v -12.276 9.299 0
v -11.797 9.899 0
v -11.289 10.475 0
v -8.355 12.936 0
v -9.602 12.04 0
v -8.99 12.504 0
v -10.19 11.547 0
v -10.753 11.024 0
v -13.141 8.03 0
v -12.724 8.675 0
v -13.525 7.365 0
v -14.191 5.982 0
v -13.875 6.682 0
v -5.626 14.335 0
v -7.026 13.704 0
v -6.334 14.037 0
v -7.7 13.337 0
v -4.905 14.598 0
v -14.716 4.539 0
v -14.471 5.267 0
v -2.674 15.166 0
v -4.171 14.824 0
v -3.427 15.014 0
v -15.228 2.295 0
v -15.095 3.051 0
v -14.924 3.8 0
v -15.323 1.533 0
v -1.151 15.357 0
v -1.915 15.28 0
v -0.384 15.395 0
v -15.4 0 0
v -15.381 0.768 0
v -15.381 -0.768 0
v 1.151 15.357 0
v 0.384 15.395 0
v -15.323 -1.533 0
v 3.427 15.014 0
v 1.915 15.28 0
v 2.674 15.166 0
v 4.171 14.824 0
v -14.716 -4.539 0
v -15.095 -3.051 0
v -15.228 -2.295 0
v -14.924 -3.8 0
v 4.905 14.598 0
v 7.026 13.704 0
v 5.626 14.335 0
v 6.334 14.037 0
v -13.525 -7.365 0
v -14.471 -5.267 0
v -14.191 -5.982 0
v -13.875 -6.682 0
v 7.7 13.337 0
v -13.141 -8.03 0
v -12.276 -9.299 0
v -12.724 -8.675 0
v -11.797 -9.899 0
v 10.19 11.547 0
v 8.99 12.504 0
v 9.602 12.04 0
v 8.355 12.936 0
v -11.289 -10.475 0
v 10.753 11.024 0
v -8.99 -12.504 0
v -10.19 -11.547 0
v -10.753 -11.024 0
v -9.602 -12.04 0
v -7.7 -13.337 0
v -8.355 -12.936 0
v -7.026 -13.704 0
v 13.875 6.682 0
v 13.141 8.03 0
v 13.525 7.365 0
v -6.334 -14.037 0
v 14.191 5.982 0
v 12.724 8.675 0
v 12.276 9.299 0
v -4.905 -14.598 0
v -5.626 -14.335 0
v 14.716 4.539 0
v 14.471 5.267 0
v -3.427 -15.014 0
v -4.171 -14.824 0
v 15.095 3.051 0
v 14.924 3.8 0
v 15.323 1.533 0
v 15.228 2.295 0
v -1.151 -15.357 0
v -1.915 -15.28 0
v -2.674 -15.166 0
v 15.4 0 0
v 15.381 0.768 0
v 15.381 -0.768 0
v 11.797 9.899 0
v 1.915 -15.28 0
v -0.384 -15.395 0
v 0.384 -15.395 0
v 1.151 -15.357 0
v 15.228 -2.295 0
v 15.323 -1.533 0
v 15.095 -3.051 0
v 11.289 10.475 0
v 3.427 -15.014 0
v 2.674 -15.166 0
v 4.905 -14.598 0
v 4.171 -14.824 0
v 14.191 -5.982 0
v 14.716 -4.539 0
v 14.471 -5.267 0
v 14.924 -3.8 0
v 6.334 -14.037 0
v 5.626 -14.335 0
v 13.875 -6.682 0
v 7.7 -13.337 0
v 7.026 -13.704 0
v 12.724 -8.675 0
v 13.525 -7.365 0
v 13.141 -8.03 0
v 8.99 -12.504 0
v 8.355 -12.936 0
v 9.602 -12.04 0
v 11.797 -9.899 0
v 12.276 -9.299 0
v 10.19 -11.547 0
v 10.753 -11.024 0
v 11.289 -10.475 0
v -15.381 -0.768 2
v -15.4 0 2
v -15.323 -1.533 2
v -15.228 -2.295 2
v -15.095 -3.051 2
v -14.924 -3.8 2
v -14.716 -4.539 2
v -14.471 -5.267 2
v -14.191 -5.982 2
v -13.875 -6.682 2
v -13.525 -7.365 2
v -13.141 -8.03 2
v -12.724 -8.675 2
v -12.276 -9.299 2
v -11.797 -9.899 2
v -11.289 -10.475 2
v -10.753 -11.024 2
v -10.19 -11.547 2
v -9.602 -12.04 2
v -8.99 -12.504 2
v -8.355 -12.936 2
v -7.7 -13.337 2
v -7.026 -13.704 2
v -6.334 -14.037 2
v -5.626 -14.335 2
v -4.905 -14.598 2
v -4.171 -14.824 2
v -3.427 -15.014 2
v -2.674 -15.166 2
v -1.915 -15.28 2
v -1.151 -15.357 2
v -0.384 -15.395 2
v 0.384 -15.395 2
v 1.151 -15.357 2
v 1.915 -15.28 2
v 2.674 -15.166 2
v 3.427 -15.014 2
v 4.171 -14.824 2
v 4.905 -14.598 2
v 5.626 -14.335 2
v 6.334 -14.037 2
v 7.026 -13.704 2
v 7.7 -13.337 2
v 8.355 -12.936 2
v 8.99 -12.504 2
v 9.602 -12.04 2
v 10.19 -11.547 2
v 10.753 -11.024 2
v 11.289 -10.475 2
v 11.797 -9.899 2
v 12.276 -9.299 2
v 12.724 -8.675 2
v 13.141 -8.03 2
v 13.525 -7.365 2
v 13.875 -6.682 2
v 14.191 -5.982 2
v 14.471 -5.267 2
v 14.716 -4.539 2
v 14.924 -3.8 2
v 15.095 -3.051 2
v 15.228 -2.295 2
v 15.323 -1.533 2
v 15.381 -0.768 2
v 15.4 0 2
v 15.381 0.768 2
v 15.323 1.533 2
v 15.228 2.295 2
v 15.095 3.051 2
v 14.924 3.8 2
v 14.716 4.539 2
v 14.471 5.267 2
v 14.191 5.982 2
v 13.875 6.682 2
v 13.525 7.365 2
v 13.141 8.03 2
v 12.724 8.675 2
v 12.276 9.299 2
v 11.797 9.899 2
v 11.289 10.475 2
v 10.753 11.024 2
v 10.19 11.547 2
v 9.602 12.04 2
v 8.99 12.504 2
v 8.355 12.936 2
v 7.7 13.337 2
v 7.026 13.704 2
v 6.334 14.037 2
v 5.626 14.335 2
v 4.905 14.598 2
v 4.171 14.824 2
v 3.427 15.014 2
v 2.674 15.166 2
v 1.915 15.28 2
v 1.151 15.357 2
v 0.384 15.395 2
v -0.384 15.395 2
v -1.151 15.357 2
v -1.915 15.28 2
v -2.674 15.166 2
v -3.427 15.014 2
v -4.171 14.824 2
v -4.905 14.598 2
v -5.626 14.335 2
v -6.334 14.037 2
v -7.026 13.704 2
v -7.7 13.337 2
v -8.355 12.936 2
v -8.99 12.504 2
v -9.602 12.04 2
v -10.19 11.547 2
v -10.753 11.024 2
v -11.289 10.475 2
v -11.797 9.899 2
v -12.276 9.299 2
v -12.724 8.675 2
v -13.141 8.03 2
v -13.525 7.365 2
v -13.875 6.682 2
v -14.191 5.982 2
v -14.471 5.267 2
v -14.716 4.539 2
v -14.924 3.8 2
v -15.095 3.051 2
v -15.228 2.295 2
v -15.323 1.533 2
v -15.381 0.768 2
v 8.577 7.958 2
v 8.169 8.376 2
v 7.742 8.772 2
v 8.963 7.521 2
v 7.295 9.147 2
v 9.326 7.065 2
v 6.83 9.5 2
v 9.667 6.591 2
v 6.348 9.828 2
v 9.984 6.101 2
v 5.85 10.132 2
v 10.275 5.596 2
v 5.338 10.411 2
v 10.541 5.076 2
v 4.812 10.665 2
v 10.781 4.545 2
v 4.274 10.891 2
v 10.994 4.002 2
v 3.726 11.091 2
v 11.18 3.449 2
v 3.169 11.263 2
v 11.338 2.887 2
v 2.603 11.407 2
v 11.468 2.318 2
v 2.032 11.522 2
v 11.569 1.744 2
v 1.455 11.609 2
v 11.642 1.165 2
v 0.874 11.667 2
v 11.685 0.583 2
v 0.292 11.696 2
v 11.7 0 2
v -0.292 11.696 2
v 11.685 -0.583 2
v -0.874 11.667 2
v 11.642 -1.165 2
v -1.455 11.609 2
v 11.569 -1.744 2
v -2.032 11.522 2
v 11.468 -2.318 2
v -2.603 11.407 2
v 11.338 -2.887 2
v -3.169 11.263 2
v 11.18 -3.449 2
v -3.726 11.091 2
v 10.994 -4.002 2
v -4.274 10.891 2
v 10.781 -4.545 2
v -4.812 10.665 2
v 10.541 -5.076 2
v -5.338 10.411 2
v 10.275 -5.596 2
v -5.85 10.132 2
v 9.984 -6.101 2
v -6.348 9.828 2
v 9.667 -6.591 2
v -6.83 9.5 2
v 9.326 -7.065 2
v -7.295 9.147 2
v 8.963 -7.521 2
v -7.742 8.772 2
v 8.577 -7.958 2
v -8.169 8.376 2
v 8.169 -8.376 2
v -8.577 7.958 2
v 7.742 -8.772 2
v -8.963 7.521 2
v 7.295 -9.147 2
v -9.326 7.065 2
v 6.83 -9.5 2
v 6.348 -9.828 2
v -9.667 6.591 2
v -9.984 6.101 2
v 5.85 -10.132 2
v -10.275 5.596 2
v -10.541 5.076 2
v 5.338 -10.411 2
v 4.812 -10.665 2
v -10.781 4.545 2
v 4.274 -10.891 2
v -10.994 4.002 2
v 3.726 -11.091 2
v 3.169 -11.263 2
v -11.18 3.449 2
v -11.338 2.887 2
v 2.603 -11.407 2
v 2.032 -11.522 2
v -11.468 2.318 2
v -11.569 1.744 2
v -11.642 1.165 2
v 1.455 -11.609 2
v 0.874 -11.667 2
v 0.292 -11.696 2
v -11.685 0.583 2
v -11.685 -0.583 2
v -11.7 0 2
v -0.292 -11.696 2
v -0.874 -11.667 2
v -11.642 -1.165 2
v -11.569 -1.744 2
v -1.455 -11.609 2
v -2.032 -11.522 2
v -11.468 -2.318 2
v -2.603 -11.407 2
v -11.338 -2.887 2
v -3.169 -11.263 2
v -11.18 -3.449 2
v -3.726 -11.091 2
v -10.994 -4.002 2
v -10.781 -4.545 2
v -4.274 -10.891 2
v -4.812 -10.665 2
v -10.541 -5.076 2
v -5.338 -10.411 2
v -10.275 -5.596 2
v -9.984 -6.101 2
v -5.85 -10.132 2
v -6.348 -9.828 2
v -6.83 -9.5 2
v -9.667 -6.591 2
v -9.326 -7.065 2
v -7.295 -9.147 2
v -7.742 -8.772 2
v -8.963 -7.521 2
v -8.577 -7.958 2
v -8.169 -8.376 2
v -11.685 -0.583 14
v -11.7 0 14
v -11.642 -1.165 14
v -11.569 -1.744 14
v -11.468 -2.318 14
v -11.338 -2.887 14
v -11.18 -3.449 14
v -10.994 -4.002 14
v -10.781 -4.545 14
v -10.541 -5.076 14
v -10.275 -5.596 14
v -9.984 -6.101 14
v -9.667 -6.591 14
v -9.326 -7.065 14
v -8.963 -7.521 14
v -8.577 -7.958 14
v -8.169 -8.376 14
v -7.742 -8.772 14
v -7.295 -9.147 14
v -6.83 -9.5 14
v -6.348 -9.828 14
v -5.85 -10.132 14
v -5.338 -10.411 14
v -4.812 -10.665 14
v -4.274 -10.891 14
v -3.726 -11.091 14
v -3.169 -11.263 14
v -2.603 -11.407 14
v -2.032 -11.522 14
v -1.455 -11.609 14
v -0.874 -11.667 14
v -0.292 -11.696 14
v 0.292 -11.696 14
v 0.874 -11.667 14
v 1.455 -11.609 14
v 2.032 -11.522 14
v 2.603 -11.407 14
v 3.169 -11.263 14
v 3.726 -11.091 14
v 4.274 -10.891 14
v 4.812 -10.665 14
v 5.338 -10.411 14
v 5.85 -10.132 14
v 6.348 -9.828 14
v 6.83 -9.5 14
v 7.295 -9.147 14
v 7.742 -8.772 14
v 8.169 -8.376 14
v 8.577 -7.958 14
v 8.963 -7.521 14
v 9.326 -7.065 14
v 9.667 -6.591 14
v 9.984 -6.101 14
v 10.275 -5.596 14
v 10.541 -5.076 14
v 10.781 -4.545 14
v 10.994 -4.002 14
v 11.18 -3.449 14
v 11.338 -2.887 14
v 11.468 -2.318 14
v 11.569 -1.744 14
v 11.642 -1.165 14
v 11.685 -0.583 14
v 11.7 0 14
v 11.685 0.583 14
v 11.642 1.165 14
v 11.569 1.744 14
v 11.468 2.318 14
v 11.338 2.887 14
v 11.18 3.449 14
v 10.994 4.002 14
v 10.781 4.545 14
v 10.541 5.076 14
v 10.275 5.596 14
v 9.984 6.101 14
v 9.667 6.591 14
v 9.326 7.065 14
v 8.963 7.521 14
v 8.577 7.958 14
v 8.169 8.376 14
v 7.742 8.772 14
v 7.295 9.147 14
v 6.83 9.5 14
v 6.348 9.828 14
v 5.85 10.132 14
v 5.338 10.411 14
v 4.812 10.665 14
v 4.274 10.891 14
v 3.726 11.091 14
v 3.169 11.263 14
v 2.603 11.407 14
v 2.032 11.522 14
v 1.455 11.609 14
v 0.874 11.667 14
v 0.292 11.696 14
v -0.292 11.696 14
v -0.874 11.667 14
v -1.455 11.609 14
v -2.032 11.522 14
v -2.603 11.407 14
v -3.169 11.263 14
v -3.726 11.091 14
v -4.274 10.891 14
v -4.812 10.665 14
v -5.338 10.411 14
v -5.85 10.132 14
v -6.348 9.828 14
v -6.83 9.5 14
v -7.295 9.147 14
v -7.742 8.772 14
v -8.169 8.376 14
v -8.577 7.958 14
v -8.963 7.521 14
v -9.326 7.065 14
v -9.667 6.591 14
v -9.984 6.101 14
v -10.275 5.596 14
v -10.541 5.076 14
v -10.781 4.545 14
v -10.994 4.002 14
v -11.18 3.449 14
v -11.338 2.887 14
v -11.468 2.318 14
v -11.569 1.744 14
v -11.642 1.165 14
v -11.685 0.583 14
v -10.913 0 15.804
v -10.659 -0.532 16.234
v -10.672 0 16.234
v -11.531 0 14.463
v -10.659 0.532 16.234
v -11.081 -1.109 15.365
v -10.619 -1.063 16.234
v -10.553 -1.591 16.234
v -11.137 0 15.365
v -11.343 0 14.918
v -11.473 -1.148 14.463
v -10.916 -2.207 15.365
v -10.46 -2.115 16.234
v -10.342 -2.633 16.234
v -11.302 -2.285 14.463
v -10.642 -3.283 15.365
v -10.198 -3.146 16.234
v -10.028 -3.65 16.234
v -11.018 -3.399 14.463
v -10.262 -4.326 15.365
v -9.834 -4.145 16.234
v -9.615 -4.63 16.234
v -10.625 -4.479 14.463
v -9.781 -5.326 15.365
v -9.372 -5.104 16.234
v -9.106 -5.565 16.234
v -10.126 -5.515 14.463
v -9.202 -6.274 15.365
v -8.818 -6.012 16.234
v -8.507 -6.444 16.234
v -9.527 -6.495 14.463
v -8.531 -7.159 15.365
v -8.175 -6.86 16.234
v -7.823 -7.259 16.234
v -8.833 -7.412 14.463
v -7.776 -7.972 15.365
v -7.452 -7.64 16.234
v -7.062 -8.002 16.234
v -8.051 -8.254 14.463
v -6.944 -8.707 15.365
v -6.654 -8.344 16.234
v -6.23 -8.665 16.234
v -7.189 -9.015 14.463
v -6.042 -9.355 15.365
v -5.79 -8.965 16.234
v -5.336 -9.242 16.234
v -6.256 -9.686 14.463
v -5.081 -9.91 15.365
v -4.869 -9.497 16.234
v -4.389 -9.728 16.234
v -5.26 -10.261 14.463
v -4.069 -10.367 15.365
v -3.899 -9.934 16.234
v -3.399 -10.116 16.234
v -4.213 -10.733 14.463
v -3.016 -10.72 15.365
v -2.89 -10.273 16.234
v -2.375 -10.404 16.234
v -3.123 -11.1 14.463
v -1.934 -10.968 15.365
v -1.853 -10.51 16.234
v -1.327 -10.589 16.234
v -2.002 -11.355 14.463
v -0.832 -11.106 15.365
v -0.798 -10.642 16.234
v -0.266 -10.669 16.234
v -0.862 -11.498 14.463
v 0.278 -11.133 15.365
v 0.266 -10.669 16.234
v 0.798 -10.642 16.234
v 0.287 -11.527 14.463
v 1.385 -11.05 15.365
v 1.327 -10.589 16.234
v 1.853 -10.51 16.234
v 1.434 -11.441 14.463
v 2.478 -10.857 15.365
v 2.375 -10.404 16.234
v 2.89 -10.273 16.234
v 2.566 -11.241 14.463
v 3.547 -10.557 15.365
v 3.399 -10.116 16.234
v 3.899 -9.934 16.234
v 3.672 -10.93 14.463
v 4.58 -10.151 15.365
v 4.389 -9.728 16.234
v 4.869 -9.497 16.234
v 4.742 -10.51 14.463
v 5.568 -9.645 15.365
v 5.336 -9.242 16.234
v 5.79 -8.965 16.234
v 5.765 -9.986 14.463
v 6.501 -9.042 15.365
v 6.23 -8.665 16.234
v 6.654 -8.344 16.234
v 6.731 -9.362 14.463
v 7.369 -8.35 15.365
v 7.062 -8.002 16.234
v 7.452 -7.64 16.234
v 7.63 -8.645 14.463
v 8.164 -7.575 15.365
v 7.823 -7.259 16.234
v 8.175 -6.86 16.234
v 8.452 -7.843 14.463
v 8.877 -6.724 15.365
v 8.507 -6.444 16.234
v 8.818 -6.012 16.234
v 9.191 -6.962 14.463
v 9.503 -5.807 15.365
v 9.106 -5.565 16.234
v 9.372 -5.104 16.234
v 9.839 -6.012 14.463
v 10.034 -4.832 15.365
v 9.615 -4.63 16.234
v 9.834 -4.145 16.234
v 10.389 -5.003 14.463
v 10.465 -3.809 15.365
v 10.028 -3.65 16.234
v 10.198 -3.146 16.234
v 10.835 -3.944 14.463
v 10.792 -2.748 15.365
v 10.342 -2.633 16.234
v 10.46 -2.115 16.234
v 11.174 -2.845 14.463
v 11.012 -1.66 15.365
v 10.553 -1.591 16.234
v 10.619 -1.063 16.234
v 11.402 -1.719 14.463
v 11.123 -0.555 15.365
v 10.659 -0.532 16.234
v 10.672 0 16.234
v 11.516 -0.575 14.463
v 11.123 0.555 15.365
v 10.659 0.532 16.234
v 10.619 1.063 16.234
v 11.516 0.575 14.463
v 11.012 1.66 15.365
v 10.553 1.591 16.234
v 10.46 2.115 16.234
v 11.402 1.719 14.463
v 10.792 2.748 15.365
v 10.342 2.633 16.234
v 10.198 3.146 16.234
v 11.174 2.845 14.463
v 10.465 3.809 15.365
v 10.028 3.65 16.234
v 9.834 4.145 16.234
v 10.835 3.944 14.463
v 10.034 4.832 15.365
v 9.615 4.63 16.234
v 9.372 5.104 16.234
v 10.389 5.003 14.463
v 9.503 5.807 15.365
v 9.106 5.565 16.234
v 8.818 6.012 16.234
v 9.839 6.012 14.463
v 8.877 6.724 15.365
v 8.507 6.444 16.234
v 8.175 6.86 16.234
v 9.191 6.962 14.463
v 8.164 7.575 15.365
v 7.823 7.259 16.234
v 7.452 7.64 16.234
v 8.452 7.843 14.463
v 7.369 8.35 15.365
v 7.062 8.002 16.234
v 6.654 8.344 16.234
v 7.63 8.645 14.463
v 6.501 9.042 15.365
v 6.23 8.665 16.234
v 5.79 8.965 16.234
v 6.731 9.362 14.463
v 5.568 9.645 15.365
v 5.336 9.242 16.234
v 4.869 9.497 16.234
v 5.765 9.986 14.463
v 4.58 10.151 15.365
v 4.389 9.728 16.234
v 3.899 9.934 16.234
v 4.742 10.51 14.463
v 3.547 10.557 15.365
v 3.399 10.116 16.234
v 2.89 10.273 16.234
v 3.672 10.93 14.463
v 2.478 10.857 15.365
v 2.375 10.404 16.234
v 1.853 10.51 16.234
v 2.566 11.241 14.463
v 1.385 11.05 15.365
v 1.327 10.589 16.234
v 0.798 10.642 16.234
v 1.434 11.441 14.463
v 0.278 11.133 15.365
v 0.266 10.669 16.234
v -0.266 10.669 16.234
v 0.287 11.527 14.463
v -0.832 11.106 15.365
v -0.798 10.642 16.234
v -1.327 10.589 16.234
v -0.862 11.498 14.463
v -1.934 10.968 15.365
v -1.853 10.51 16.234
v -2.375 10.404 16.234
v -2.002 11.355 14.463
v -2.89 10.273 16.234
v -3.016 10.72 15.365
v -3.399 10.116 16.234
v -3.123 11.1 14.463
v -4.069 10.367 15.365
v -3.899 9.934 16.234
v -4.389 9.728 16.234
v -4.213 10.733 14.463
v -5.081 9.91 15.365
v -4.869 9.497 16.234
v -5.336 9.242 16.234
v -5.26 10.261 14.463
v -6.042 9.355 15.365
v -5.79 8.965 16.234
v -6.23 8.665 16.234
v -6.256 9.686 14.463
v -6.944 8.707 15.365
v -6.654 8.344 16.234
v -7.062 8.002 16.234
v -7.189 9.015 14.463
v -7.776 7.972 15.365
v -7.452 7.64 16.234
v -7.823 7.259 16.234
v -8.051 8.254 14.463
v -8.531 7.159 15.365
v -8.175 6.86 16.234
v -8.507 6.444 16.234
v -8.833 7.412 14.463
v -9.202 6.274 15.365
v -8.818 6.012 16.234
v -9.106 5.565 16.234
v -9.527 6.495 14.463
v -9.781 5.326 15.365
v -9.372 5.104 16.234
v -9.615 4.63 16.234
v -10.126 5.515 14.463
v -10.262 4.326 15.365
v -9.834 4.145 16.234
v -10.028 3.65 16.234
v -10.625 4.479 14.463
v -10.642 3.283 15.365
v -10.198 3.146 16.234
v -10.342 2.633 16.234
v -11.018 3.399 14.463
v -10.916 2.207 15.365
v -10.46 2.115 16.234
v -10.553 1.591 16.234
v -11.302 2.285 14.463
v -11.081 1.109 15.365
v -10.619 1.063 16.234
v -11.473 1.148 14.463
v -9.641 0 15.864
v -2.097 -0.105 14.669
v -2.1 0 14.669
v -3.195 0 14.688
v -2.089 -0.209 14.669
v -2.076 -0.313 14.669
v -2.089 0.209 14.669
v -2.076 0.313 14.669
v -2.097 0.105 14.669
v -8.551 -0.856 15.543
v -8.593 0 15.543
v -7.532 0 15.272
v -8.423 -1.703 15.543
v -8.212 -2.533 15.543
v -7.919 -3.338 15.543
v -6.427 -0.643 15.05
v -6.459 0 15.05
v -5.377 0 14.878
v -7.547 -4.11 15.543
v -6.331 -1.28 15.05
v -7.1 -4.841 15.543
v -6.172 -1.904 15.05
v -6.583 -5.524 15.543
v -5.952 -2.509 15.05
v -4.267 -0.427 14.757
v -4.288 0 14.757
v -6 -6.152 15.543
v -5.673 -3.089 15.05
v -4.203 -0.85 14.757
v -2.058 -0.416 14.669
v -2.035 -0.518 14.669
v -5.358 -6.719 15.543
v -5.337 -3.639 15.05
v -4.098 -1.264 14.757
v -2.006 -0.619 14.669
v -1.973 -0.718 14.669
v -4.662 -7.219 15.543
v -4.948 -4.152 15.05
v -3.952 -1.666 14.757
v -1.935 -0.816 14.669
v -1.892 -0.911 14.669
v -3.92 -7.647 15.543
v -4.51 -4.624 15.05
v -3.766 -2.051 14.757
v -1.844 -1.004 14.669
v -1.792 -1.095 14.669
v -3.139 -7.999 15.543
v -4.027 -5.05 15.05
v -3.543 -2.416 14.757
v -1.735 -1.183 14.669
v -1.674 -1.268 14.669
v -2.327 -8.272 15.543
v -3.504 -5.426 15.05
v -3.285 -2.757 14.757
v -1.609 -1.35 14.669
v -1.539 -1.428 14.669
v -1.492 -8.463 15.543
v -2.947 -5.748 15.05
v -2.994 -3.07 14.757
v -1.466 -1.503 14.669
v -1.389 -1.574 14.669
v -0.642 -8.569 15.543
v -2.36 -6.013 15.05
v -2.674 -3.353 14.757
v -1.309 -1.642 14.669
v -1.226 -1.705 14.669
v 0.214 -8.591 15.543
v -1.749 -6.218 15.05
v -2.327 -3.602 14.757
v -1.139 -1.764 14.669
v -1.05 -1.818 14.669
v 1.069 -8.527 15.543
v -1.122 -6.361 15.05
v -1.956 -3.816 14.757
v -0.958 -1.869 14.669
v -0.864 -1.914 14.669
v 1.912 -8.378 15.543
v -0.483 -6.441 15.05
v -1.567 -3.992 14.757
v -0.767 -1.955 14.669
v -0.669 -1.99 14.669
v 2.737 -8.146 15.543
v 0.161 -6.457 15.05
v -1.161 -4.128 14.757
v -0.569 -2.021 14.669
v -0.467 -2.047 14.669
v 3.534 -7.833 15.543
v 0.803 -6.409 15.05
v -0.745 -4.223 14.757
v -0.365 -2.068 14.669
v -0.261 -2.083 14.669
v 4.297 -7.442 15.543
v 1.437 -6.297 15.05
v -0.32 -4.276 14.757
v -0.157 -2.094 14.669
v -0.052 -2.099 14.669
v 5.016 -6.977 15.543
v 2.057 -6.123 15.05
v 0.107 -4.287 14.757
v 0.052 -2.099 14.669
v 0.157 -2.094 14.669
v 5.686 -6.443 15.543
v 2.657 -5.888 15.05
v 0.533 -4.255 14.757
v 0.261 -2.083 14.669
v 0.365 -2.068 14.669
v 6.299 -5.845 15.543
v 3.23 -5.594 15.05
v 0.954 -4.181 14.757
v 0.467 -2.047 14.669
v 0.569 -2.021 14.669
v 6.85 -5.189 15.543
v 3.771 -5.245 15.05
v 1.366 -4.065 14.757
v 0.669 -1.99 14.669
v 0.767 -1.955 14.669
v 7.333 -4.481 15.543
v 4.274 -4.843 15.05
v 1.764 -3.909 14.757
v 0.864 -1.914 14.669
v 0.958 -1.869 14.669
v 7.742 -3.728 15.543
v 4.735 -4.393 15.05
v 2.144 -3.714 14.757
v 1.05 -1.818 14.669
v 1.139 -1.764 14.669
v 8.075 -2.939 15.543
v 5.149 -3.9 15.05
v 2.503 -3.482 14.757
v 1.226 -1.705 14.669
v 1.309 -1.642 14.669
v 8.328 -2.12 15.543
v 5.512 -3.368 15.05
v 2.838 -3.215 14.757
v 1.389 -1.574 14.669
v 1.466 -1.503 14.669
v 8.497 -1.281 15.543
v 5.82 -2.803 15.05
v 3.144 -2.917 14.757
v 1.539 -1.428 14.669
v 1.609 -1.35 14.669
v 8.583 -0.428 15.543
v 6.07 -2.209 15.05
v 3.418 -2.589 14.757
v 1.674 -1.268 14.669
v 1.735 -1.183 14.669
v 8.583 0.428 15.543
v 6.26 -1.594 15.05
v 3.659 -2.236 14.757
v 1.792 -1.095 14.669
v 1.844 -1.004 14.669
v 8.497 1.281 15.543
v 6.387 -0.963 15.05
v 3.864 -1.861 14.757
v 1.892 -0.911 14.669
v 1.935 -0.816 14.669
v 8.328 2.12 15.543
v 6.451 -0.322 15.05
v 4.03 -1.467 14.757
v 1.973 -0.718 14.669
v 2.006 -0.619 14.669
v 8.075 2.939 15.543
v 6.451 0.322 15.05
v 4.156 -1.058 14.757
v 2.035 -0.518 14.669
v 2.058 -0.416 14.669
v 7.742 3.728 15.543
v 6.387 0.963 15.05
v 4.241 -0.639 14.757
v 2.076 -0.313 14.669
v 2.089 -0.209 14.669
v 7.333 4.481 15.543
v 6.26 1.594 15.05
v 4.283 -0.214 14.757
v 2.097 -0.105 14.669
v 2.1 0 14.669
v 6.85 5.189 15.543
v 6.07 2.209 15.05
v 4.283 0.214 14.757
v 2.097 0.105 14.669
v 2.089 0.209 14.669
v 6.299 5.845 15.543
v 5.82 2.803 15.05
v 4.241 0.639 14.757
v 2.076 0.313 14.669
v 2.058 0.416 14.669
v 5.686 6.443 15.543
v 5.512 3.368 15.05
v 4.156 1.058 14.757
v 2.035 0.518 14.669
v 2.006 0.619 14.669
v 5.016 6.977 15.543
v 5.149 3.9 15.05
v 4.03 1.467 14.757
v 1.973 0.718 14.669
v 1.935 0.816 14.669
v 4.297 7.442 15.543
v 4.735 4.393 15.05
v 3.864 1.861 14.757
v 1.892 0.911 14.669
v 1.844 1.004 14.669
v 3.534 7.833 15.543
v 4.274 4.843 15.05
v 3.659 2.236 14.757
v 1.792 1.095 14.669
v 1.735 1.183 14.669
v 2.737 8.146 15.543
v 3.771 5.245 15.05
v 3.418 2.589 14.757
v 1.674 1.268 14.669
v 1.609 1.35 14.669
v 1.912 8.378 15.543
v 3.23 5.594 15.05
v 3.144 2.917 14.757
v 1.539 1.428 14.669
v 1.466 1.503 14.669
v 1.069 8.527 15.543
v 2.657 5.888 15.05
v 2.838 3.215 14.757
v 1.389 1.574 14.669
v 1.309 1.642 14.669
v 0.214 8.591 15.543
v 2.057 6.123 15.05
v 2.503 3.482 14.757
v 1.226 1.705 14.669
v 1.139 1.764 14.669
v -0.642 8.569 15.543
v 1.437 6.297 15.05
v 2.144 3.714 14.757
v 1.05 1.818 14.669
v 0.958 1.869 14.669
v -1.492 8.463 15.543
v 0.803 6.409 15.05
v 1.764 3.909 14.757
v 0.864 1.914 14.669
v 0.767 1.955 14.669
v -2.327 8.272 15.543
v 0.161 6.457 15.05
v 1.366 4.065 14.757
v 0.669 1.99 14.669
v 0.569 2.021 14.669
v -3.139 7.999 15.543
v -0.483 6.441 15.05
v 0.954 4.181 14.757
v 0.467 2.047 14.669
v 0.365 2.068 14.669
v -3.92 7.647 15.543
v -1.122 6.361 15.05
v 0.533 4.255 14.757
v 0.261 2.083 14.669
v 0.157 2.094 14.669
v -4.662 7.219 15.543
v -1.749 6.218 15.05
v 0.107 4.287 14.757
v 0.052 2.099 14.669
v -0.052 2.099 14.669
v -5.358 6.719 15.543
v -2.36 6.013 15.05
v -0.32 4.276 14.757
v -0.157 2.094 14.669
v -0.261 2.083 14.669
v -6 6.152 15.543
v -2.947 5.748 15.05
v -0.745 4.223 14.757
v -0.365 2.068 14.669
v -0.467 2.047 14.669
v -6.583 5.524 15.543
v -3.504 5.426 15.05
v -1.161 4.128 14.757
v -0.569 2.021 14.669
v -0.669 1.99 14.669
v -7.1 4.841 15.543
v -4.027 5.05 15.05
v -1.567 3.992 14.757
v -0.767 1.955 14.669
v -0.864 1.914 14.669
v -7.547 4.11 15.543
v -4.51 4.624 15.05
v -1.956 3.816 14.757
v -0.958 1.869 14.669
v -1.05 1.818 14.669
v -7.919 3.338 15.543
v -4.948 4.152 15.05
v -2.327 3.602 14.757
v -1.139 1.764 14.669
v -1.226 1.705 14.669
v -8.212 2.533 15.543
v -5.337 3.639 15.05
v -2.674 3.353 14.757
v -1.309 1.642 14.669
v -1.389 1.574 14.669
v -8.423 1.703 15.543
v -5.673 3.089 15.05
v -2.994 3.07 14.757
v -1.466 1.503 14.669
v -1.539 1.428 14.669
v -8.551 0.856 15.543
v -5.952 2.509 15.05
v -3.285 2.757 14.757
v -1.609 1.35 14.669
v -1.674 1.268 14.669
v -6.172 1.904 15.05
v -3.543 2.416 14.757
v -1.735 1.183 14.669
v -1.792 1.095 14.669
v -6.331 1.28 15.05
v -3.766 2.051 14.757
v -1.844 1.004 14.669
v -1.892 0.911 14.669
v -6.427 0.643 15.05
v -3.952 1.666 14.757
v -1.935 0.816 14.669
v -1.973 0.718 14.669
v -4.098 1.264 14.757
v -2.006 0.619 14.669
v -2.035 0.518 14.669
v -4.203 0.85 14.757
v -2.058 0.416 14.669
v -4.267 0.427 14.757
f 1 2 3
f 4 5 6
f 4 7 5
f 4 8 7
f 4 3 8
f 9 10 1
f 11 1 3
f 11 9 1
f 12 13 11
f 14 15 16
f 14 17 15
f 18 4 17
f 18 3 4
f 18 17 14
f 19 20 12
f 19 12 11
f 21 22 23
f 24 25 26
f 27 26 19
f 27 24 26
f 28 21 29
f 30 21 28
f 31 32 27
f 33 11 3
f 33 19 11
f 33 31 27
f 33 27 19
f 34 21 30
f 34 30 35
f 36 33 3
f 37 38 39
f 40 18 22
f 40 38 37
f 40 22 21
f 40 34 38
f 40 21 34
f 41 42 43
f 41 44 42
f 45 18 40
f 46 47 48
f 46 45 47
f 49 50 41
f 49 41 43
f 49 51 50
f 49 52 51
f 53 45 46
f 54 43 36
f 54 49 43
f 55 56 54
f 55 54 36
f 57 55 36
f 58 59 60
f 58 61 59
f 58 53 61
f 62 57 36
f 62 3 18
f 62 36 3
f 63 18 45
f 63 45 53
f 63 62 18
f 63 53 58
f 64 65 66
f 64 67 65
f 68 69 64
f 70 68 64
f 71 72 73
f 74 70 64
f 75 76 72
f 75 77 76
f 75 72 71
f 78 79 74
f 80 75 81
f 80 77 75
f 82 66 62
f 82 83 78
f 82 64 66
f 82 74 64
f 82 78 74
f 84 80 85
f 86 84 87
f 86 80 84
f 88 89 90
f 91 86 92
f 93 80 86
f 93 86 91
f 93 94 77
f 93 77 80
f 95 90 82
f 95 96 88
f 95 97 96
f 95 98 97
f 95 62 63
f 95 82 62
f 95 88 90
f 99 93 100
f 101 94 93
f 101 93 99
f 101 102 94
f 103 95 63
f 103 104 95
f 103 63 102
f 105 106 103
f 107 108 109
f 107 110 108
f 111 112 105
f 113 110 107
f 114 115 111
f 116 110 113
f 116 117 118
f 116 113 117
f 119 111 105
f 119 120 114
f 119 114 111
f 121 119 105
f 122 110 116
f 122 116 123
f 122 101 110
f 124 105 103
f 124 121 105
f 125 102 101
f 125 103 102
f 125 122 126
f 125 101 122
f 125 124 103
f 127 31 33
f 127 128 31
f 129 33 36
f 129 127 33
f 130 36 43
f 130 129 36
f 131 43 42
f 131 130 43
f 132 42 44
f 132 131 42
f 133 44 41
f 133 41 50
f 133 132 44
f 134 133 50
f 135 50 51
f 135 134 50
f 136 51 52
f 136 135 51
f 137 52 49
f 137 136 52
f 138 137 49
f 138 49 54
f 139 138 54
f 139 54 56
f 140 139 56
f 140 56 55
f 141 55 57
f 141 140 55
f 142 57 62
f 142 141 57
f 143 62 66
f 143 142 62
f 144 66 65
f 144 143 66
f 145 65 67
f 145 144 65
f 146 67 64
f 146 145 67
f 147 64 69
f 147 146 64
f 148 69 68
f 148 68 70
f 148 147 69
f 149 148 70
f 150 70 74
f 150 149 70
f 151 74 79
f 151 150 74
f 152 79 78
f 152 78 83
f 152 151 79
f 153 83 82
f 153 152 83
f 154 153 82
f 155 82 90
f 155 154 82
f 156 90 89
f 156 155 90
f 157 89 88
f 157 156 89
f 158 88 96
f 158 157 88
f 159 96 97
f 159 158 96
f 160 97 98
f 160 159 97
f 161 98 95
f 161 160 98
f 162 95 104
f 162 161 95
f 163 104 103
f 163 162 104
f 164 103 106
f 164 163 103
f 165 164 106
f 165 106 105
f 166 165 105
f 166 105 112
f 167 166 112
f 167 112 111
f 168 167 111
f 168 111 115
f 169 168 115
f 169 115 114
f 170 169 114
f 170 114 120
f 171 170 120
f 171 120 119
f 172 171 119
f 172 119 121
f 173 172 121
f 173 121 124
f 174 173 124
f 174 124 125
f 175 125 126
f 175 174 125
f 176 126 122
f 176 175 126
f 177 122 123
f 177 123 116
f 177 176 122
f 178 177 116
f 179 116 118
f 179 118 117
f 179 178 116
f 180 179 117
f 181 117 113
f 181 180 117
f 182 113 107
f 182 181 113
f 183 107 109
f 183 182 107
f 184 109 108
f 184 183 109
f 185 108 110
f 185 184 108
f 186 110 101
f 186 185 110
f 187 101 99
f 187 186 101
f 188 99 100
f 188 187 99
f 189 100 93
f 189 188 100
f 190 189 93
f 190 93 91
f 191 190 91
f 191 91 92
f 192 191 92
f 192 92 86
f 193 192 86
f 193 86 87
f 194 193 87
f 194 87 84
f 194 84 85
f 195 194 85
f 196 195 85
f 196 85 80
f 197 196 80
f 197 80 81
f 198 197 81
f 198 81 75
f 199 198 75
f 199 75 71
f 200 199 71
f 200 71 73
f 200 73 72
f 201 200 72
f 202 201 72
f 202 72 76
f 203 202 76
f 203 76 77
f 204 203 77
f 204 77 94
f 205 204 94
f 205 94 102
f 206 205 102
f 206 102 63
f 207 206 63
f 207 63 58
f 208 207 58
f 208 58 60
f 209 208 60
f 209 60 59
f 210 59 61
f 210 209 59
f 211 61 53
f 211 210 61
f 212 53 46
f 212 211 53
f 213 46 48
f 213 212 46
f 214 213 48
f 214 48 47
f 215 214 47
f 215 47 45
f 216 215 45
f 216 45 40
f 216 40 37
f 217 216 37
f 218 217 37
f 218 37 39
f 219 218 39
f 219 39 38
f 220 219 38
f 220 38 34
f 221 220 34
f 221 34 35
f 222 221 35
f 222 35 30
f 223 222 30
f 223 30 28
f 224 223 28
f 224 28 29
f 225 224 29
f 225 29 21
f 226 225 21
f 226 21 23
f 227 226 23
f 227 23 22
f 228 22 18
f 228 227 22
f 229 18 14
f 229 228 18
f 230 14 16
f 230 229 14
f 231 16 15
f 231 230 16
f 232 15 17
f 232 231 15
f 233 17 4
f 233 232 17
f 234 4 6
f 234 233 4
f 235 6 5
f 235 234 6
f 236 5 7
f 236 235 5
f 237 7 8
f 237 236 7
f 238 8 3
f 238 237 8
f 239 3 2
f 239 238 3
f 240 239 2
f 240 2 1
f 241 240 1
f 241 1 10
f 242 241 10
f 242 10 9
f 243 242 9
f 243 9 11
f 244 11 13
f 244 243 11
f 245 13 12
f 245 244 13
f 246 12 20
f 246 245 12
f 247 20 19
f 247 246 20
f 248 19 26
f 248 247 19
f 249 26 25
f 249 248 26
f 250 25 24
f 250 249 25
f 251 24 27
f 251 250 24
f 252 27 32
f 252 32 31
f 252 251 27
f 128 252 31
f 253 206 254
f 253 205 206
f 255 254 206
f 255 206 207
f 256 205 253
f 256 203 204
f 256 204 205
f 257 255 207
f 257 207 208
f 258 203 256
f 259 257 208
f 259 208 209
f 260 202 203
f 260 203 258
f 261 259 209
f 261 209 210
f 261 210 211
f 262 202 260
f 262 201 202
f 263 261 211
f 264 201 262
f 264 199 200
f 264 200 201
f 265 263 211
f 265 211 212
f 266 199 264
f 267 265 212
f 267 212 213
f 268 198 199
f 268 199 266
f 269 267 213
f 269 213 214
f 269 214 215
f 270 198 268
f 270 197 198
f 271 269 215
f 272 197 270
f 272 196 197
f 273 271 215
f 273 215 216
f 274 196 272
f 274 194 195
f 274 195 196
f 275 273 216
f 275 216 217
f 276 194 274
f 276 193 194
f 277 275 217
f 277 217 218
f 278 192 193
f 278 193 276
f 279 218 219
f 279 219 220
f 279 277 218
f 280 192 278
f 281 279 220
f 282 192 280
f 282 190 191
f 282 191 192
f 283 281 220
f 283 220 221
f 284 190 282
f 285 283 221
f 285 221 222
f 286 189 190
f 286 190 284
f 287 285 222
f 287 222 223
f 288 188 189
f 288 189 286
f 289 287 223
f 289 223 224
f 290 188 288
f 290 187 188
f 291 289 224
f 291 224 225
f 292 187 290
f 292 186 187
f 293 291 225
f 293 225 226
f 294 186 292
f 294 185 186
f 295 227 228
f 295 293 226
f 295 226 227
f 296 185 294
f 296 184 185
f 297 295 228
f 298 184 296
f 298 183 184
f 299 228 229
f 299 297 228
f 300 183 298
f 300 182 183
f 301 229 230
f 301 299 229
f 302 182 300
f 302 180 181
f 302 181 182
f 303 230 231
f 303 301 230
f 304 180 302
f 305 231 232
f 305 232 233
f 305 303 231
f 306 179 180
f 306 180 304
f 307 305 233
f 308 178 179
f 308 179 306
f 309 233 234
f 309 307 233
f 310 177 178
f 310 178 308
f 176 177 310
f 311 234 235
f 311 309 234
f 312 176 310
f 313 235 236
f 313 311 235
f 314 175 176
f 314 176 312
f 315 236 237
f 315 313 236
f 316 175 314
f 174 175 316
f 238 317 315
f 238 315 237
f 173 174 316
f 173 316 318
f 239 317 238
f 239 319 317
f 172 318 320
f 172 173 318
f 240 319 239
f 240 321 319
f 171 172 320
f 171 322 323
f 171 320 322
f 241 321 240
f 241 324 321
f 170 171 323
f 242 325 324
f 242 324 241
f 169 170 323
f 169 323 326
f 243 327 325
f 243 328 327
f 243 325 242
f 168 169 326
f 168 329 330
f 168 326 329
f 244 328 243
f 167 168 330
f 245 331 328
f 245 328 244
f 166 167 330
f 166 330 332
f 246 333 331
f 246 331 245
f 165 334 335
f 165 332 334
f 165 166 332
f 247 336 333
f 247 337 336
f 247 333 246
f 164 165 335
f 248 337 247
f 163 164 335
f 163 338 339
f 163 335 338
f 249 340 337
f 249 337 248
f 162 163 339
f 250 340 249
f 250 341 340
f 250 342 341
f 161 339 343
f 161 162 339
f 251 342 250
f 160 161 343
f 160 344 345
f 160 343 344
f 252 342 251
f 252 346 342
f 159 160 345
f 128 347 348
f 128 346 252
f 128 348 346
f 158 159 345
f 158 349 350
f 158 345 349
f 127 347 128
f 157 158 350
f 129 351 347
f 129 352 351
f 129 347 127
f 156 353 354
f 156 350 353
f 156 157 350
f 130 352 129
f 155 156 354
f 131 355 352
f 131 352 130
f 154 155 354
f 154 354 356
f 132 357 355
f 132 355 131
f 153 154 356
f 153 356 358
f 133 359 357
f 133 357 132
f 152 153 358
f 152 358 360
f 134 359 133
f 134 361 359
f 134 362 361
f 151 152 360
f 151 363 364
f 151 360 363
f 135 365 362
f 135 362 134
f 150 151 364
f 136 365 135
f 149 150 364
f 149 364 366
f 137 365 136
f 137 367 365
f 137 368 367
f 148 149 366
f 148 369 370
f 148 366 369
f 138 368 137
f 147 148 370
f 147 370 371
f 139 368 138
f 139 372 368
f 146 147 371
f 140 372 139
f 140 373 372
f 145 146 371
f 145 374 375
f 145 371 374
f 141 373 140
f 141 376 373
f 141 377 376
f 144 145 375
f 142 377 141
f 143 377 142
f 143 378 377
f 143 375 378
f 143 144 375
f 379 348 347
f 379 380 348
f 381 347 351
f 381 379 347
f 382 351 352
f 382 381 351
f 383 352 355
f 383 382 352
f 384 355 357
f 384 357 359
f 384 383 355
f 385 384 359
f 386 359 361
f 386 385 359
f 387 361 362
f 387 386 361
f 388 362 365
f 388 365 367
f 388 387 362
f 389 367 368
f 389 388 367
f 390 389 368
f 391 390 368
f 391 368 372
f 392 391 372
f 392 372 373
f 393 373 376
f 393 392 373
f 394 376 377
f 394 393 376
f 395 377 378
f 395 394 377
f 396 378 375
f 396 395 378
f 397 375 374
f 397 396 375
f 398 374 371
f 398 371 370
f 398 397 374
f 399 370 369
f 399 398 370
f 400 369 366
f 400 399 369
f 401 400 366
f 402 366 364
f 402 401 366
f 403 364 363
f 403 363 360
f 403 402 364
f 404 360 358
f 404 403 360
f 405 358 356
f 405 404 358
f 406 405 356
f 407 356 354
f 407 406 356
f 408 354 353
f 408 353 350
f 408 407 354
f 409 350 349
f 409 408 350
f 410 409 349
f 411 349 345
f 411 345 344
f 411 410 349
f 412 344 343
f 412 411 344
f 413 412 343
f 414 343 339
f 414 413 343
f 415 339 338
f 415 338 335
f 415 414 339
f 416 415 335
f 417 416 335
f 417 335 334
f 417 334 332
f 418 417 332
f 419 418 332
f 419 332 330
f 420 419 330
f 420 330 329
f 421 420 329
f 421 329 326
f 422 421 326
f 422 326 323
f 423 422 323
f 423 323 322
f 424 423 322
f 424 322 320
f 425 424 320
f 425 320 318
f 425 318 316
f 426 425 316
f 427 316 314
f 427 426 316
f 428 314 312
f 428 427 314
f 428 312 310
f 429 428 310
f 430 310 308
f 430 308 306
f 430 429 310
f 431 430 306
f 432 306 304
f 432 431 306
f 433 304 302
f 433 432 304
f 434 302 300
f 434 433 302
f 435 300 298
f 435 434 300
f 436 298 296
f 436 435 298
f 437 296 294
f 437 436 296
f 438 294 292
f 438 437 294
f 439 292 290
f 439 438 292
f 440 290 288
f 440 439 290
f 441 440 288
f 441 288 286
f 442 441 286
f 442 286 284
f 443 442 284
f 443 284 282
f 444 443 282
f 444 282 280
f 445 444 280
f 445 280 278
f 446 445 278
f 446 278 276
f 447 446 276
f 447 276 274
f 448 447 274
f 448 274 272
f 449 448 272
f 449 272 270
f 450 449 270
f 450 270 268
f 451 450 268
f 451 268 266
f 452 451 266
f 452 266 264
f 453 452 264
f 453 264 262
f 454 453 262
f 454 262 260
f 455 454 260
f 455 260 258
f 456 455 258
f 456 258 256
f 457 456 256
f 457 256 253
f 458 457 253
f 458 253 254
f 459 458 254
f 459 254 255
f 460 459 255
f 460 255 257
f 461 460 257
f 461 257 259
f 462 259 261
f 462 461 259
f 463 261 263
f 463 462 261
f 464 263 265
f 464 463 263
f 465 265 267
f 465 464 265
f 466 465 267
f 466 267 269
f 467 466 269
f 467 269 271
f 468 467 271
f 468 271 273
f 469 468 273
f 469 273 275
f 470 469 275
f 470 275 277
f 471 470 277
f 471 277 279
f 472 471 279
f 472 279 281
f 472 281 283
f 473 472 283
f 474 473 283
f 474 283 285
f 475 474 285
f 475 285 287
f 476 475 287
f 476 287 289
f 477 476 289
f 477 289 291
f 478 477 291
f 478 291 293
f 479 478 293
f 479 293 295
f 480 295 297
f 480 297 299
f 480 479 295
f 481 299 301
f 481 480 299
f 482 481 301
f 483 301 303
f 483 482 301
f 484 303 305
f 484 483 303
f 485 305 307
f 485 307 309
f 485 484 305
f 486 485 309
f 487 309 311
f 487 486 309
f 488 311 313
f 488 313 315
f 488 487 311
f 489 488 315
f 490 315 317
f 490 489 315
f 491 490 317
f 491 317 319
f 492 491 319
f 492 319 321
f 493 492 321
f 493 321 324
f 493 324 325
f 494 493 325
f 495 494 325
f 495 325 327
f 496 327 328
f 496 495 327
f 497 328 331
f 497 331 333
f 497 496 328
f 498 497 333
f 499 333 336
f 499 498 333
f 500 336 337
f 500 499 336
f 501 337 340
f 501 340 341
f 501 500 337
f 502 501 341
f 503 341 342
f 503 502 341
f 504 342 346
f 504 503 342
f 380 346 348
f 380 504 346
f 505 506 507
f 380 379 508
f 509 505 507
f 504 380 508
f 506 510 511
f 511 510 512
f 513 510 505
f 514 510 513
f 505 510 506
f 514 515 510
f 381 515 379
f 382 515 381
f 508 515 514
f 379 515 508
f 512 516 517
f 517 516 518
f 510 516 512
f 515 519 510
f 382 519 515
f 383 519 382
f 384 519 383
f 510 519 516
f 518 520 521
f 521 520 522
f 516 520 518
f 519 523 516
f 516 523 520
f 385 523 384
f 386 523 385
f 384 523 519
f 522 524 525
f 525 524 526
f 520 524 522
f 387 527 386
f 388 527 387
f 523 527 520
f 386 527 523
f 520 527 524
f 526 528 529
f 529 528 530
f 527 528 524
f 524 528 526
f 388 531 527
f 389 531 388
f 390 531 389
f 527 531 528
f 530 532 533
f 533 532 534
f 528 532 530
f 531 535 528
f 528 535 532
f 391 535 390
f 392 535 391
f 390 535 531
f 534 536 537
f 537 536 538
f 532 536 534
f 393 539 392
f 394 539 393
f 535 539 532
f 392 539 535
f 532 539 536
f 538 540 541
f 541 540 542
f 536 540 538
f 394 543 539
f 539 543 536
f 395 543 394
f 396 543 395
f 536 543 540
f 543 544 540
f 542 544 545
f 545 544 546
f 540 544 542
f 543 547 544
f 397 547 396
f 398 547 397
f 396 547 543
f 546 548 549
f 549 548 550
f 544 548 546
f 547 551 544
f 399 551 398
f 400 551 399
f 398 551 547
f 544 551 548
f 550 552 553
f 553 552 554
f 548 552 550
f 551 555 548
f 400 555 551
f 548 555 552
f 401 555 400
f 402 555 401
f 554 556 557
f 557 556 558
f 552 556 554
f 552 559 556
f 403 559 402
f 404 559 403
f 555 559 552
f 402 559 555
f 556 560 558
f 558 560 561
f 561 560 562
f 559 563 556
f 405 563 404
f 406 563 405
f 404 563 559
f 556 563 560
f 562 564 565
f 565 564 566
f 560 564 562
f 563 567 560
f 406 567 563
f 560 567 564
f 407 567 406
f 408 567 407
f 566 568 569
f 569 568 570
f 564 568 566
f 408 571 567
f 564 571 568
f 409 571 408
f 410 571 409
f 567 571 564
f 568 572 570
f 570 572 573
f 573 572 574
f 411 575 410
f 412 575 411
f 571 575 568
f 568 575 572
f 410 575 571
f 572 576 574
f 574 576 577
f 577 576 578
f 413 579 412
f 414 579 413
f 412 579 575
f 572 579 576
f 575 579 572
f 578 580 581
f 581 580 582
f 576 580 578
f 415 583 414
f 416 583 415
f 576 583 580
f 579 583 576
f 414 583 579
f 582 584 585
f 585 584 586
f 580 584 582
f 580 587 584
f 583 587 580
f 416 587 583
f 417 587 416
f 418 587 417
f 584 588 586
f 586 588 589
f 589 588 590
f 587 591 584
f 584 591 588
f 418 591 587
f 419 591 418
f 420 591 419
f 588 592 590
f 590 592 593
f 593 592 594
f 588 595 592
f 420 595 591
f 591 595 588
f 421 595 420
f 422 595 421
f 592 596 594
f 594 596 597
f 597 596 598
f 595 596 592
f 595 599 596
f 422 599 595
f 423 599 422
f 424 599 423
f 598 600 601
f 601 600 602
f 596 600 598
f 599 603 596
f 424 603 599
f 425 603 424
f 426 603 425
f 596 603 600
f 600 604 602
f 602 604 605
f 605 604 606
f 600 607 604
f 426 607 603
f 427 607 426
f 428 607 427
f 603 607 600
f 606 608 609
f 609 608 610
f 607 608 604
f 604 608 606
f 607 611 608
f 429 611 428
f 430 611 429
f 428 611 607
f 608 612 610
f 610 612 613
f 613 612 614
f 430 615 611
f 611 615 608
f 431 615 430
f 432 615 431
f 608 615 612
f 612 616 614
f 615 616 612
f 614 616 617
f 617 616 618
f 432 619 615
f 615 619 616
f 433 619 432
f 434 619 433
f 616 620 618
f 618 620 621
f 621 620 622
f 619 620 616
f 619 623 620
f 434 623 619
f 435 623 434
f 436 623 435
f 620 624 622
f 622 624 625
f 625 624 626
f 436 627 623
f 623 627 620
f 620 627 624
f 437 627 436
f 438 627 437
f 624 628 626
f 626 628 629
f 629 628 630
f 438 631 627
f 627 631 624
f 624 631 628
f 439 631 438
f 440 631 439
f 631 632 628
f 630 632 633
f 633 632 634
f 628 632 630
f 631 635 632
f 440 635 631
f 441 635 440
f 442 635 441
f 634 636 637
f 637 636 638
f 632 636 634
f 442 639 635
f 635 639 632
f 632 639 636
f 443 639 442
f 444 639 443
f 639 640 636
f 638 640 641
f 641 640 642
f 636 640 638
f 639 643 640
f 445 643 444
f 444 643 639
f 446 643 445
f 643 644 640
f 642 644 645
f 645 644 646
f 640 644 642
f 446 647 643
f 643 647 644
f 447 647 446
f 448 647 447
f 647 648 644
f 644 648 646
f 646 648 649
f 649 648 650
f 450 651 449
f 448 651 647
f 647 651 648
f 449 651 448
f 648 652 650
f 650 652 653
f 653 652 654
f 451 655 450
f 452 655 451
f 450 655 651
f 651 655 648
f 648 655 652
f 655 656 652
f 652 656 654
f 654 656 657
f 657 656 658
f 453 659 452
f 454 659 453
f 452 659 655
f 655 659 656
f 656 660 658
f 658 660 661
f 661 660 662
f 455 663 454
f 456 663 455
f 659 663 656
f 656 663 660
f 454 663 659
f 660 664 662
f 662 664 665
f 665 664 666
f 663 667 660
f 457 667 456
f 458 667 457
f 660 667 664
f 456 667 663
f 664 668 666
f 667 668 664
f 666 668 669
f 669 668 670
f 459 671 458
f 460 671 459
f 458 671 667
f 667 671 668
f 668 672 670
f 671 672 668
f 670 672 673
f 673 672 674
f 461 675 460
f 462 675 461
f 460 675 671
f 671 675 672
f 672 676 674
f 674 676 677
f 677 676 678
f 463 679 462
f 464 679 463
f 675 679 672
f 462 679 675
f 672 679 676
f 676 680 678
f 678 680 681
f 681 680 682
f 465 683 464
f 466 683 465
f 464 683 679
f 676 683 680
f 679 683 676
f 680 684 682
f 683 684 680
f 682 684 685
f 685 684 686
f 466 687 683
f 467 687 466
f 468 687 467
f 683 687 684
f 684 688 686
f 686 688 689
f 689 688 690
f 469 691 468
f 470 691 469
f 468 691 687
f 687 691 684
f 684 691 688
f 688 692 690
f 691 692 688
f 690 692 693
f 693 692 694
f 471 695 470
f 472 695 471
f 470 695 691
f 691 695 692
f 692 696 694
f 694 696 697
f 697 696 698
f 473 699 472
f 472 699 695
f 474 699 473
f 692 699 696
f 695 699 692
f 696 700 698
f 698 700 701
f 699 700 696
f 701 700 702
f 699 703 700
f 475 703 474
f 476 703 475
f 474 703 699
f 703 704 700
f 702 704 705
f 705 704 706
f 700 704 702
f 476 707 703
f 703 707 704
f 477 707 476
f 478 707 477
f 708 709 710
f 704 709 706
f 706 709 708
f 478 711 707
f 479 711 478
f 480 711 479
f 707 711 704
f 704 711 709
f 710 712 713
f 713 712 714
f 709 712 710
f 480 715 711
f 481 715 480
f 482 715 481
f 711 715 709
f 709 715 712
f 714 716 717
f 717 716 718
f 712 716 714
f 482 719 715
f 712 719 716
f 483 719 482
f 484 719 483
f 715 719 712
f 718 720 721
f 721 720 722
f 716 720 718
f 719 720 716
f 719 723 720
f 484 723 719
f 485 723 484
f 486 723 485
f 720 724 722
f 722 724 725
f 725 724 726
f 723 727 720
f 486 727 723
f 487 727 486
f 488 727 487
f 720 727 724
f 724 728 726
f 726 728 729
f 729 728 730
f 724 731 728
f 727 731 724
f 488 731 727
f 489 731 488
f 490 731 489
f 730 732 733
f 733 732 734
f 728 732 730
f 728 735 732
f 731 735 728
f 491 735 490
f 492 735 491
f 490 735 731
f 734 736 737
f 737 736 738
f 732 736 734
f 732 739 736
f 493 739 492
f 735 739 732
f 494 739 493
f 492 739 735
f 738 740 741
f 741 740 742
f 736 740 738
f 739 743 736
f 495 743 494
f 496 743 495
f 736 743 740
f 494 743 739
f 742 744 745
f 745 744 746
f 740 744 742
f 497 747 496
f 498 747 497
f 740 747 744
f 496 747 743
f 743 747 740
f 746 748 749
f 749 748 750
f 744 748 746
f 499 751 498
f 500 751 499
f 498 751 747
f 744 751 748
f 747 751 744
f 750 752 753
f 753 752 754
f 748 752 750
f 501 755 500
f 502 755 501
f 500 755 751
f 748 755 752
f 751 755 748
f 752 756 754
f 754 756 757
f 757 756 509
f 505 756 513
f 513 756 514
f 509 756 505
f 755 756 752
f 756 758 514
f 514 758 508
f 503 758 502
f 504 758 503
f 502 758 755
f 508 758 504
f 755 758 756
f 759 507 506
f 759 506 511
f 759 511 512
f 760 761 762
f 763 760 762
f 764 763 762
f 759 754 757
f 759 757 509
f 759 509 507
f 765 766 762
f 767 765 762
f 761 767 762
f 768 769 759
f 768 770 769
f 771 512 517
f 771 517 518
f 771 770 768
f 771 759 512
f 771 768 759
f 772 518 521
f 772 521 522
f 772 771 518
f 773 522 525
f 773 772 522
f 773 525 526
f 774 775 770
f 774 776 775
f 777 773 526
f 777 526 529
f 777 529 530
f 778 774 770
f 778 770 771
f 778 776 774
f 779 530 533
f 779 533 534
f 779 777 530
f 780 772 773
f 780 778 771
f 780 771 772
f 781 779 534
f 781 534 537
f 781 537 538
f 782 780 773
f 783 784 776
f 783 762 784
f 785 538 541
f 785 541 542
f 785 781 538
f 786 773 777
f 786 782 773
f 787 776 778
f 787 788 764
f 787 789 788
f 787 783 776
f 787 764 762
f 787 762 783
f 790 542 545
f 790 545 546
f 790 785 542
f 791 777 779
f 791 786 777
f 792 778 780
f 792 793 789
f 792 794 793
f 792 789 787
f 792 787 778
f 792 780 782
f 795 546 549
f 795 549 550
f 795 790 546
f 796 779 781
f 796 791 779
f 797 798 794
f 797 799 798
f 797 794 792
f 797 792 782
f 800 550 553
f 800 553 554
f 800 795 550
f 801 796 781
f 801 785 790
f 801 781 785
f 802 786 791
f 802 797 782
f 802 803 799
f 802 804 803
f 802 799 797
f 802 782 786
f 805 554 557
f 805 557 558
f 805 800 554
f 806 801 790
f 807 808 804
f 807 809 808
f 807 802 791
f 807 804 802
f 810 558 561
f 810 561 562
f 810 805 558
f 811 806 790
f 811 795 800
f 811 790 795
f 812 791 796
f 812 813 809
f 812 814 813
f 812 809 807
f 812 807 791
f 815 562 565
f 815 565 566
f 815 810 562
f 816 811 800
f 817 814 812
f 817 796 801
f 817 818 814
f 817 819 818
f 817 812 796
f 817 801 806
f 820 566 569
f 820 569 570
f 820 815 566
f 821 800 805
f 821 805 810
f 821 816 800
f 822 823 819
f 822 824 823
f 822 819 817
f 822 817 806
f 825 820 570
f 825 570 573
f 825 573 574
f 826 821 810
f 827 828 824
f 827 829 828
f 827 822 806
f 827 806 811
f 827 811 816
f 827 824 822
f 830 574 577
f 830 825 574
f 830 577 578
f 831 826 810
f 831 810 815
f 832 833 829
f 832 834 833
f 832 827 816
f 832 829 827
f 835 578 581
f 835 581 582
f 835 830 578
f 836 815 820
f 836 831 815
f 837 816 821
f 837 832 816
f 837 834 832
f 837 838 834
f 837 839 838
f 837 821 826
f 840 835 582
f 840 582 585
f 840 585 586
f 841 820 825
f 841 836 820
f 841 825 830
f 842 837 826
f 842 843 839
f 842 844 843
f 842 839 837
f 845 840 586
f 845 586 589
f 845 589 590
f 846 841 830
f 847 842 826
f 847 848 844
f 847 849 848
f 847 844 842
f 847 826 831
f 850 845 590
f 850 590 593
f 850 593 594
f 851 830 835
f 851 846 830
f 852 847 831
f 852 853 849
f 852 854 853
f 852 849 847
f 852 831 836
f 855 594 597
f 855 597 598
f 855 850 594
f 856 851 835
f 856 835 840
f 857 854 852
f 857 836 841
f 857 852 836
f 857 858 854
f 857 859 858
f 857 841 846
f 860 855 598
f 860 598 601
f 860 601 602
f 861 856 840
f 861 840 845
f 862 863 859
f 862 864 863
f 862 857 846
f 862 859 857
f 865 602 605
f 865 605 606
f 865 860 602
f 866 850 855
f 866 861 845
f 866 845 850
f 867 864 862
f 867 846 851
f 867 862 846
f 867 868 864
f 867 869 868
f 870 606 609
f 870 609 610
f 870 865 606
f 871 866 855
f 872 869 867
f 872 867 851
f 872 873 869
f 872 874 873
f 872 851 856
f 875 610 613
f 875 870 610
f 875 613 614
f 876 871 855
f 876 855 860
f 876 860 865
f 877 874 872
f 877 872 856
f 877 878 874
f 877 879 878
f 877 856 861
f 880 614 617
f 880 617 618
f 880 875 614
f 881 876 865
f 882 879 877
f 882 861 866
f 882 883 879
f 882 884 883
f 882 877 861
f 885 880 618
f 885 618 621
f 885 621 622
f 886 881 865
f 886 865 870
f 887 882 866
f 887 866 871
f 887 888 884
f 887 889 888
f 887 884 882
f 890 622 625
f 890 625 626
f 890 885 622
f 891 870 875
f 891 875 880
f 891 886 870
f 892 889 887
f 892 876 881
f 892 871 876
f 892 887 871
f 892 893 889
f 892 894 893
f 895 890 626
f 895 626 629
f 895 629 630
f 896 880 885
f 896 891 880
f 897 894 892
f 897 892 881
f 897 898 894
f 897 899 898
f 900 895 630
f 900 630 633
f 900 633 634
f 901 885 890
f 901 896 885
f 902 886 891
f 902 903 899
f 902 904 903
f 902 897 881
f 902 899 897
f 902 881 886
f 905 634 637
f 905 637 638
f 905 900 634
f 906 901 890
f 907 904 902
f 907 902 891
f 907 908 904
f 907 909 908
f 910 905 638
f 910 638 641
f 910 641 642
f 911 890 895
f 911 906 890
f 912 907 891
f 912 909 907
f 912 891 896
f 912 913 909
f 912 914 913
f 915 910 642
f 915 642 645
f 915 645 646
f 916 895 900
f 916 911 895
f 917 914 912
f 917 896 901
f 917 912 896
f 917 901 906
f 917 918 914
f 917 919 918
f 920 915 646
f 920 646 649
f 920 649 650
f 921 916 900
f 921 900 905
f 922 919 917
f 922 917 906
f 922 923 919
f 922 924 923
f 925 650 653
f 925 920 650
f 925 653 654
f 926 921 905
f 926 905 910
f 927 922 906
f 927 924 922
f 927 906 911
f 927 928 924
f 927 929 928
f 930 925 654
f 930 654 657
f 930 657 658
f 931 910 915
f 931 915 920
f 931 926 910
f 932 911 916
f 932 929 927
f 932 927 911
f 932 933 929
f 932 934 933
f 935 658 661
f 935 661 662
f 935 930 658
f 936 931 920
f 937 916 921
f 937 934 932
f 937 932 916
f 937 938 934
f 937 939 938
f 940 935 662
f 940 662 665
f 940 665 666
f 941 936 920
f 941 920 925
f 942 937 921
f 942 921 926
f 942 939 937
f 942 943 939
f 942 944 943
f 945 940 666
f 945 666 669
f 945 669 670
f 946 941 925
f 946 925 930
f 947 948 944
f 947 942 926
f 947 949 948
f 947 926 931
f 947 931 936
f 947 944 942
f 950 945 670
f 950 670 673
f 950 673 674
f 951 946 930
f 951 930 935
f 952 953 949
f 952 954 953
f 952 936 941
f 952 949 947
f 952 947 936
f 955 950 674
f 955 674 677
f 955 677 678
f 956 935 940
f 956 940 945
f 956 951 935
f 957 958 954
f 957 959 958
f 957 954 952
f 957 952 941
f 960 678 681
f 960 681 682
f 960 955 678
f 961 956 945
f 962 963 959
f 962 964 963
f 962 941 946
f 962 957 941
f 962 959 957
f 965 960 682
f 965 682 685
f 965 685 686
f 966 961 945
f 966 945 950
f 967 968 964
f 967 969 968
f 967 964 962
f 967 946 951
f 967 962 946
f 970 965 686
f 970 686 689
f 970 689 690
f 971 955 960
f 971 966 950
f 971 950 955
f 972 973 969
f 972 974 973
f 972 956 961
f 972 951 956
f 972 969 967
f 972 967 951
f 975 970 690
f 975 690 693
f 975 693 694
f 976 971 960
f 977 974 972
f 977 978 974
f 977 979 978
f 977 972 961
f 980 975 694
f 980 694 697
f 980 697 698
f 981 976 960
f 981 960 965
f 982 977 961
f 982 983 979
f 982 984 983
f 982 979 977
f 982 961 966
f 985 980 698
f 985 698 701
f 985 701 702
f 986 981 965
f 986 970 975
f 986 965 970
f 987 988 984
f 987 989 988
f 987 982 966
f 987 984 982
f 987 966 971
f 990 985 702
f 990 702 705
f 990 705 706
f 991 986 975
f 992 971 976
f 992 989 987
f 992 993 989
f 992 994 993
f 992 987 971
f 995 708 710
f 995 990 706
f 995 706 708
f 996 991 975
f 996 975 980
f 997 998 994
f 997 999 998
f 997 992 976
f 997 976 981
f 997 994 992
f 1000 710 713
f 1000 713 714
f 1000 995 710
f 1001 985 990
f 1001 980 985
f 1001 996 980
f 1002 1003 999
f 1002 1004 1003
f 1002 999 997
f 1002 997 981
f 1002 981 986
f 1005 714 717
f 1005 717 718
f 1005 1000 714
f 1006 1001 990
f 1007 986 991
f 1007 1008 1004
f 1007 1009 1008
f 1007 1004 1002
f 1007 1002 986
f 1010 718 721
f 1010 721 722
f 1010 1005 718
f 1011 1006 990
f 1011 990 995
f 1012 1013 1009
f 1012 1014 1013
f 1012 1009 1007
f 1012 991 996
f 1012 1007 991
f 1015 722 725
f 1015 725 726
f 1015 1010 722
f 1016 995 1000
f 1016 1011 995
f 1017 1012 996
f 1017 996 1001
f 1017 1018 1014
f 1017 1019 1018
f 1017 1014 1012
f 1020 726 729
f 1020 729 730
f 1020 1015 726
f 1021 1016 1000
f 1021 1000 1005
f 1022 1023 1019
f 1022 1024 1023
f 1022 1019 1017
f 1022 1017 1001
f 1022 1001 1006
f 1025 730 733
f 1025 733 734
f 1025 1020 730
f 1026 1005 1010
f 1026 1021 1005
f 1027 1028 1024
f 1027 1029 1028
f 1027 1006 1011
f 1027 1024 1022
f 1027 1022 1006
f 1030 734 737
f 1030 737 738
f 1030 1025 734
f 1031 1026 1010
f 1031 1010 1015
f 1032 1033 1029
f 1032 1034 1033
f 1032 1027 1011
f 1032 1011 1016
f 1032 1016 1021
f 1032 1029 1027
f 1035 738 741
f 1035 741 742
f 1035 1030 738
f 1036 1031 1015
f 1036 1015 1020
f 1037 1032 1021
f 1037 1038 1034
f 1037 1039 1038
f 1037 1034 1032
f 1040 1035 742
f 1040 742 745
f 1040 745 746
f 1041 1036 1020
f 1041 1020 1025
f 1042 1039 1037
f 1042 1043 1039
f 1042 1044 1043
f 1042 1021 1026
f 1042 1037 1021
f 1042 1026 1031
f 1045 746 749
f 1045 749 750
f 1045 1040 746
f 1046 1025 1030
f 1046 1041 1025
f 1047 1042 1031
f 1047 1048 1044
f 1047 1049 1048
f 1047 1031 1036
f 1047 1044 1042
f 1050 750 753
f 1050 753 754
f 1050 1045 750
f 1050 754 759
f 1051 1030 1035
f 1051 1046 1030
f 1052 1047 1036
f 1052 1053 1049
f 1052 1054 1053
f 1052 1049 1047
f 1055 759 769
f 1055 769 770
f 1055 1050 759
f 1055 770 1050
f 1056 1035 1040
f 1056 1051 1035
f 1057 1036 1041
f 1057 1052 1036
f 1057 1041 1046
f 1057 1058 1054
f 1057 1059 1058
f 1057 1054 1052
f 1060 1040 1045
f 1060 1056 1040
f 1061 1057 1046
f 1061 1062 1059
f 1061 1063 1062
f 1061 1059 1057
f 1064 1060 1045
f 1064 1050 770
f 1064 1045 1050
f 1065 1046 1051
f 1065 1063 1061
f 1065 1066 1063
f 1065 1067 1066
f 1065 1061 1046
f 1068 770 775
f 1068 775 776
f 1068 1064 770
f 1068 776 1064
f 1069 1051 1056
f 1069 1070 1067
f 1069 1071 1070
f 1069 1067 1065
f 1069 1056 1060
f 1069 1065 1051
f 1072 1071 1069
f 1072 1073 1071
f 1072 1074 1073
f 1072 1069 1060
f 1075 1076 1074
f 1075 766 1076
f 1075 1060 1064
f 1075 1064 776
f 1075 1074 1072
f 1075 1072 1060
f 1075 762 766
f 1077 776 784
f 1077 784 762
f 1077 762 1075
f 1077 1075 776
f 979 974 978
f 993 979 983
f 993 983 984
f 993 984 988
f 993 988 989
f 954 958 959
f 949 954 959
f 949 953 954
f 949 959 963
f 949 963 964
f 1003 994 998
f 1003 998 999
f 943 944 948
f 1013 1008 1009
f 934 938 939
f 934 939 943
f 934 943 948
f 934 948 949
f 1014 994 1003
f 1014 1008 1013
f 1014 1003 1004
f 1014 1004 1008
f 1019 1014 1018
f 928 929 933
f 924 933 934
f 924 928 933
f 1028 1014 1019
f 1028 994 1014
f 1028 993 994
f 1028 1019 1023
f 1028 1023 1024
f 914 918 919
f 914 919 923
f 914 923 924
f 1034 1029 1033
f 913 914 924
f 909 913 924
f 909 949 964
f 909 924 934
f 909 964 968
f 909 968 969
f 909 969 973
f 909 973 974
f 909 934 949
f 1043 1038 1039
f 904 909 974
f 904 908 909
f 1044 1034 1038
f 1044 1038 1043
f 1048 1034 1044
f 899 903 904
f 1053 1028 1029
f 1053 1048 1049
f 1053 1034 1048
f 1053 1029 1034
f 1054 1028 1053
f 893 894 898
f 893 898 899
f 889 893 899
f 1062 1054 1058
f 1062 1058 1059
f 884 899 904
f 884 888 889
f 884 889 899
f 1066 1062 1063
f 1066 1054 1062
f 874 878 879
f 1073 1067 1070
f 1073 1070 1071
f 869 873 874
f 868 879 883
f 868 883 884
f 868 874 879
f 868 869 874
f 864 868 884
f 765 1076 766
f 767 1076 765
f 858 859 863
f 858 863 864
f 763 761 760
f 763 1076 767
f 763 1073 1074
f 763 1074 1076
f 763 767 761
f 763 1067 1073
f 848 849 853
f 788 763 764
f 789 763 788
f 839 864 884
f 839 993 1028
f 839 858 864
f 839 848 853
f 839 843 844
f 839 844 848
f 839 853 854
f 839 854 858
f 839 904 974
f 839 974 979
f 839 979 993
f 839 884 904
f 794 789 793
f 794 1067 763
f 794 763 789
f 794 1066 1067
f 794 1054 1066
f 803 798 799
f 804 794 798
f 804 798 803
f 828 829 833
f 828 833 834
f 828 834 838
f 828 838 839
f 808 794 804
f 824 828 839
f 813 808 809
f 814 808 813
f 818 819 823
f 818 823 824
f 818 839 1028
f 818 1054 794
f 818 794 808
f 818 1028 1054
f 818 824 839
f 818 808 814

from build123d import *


with BuildPart() as part:
    # Sketch → Revolution (revolve)
    with BuildSketch(Plane.XZ):
        with BuildLine():
            Line((0, 0), (-15.4, 0))
            Line((-15.4, 0), (-15.4, 2))
            Line((-15.4, 2), (-11.7, 2))
            Line((-11.7, 2), (-11.7, 14))
            ThreePointArc((-10.672007, 16.233973), (-11.24192, 15.142717), (-11.7, 14))
            ThreePointArc((-10.672007, 16.233973), (-6.459239, 15.049676), (-2.099769, 14.6689))
            Line((-2.099769, 14.6689), (0, 14.6689))
            Line((0, 14.6689), (0, 14))
            Line((0, 14), (0, 0))
        make_face()
    revolve(axis=Axis((0, 0, 0), (0, 0, 1)))


solid = part.part
